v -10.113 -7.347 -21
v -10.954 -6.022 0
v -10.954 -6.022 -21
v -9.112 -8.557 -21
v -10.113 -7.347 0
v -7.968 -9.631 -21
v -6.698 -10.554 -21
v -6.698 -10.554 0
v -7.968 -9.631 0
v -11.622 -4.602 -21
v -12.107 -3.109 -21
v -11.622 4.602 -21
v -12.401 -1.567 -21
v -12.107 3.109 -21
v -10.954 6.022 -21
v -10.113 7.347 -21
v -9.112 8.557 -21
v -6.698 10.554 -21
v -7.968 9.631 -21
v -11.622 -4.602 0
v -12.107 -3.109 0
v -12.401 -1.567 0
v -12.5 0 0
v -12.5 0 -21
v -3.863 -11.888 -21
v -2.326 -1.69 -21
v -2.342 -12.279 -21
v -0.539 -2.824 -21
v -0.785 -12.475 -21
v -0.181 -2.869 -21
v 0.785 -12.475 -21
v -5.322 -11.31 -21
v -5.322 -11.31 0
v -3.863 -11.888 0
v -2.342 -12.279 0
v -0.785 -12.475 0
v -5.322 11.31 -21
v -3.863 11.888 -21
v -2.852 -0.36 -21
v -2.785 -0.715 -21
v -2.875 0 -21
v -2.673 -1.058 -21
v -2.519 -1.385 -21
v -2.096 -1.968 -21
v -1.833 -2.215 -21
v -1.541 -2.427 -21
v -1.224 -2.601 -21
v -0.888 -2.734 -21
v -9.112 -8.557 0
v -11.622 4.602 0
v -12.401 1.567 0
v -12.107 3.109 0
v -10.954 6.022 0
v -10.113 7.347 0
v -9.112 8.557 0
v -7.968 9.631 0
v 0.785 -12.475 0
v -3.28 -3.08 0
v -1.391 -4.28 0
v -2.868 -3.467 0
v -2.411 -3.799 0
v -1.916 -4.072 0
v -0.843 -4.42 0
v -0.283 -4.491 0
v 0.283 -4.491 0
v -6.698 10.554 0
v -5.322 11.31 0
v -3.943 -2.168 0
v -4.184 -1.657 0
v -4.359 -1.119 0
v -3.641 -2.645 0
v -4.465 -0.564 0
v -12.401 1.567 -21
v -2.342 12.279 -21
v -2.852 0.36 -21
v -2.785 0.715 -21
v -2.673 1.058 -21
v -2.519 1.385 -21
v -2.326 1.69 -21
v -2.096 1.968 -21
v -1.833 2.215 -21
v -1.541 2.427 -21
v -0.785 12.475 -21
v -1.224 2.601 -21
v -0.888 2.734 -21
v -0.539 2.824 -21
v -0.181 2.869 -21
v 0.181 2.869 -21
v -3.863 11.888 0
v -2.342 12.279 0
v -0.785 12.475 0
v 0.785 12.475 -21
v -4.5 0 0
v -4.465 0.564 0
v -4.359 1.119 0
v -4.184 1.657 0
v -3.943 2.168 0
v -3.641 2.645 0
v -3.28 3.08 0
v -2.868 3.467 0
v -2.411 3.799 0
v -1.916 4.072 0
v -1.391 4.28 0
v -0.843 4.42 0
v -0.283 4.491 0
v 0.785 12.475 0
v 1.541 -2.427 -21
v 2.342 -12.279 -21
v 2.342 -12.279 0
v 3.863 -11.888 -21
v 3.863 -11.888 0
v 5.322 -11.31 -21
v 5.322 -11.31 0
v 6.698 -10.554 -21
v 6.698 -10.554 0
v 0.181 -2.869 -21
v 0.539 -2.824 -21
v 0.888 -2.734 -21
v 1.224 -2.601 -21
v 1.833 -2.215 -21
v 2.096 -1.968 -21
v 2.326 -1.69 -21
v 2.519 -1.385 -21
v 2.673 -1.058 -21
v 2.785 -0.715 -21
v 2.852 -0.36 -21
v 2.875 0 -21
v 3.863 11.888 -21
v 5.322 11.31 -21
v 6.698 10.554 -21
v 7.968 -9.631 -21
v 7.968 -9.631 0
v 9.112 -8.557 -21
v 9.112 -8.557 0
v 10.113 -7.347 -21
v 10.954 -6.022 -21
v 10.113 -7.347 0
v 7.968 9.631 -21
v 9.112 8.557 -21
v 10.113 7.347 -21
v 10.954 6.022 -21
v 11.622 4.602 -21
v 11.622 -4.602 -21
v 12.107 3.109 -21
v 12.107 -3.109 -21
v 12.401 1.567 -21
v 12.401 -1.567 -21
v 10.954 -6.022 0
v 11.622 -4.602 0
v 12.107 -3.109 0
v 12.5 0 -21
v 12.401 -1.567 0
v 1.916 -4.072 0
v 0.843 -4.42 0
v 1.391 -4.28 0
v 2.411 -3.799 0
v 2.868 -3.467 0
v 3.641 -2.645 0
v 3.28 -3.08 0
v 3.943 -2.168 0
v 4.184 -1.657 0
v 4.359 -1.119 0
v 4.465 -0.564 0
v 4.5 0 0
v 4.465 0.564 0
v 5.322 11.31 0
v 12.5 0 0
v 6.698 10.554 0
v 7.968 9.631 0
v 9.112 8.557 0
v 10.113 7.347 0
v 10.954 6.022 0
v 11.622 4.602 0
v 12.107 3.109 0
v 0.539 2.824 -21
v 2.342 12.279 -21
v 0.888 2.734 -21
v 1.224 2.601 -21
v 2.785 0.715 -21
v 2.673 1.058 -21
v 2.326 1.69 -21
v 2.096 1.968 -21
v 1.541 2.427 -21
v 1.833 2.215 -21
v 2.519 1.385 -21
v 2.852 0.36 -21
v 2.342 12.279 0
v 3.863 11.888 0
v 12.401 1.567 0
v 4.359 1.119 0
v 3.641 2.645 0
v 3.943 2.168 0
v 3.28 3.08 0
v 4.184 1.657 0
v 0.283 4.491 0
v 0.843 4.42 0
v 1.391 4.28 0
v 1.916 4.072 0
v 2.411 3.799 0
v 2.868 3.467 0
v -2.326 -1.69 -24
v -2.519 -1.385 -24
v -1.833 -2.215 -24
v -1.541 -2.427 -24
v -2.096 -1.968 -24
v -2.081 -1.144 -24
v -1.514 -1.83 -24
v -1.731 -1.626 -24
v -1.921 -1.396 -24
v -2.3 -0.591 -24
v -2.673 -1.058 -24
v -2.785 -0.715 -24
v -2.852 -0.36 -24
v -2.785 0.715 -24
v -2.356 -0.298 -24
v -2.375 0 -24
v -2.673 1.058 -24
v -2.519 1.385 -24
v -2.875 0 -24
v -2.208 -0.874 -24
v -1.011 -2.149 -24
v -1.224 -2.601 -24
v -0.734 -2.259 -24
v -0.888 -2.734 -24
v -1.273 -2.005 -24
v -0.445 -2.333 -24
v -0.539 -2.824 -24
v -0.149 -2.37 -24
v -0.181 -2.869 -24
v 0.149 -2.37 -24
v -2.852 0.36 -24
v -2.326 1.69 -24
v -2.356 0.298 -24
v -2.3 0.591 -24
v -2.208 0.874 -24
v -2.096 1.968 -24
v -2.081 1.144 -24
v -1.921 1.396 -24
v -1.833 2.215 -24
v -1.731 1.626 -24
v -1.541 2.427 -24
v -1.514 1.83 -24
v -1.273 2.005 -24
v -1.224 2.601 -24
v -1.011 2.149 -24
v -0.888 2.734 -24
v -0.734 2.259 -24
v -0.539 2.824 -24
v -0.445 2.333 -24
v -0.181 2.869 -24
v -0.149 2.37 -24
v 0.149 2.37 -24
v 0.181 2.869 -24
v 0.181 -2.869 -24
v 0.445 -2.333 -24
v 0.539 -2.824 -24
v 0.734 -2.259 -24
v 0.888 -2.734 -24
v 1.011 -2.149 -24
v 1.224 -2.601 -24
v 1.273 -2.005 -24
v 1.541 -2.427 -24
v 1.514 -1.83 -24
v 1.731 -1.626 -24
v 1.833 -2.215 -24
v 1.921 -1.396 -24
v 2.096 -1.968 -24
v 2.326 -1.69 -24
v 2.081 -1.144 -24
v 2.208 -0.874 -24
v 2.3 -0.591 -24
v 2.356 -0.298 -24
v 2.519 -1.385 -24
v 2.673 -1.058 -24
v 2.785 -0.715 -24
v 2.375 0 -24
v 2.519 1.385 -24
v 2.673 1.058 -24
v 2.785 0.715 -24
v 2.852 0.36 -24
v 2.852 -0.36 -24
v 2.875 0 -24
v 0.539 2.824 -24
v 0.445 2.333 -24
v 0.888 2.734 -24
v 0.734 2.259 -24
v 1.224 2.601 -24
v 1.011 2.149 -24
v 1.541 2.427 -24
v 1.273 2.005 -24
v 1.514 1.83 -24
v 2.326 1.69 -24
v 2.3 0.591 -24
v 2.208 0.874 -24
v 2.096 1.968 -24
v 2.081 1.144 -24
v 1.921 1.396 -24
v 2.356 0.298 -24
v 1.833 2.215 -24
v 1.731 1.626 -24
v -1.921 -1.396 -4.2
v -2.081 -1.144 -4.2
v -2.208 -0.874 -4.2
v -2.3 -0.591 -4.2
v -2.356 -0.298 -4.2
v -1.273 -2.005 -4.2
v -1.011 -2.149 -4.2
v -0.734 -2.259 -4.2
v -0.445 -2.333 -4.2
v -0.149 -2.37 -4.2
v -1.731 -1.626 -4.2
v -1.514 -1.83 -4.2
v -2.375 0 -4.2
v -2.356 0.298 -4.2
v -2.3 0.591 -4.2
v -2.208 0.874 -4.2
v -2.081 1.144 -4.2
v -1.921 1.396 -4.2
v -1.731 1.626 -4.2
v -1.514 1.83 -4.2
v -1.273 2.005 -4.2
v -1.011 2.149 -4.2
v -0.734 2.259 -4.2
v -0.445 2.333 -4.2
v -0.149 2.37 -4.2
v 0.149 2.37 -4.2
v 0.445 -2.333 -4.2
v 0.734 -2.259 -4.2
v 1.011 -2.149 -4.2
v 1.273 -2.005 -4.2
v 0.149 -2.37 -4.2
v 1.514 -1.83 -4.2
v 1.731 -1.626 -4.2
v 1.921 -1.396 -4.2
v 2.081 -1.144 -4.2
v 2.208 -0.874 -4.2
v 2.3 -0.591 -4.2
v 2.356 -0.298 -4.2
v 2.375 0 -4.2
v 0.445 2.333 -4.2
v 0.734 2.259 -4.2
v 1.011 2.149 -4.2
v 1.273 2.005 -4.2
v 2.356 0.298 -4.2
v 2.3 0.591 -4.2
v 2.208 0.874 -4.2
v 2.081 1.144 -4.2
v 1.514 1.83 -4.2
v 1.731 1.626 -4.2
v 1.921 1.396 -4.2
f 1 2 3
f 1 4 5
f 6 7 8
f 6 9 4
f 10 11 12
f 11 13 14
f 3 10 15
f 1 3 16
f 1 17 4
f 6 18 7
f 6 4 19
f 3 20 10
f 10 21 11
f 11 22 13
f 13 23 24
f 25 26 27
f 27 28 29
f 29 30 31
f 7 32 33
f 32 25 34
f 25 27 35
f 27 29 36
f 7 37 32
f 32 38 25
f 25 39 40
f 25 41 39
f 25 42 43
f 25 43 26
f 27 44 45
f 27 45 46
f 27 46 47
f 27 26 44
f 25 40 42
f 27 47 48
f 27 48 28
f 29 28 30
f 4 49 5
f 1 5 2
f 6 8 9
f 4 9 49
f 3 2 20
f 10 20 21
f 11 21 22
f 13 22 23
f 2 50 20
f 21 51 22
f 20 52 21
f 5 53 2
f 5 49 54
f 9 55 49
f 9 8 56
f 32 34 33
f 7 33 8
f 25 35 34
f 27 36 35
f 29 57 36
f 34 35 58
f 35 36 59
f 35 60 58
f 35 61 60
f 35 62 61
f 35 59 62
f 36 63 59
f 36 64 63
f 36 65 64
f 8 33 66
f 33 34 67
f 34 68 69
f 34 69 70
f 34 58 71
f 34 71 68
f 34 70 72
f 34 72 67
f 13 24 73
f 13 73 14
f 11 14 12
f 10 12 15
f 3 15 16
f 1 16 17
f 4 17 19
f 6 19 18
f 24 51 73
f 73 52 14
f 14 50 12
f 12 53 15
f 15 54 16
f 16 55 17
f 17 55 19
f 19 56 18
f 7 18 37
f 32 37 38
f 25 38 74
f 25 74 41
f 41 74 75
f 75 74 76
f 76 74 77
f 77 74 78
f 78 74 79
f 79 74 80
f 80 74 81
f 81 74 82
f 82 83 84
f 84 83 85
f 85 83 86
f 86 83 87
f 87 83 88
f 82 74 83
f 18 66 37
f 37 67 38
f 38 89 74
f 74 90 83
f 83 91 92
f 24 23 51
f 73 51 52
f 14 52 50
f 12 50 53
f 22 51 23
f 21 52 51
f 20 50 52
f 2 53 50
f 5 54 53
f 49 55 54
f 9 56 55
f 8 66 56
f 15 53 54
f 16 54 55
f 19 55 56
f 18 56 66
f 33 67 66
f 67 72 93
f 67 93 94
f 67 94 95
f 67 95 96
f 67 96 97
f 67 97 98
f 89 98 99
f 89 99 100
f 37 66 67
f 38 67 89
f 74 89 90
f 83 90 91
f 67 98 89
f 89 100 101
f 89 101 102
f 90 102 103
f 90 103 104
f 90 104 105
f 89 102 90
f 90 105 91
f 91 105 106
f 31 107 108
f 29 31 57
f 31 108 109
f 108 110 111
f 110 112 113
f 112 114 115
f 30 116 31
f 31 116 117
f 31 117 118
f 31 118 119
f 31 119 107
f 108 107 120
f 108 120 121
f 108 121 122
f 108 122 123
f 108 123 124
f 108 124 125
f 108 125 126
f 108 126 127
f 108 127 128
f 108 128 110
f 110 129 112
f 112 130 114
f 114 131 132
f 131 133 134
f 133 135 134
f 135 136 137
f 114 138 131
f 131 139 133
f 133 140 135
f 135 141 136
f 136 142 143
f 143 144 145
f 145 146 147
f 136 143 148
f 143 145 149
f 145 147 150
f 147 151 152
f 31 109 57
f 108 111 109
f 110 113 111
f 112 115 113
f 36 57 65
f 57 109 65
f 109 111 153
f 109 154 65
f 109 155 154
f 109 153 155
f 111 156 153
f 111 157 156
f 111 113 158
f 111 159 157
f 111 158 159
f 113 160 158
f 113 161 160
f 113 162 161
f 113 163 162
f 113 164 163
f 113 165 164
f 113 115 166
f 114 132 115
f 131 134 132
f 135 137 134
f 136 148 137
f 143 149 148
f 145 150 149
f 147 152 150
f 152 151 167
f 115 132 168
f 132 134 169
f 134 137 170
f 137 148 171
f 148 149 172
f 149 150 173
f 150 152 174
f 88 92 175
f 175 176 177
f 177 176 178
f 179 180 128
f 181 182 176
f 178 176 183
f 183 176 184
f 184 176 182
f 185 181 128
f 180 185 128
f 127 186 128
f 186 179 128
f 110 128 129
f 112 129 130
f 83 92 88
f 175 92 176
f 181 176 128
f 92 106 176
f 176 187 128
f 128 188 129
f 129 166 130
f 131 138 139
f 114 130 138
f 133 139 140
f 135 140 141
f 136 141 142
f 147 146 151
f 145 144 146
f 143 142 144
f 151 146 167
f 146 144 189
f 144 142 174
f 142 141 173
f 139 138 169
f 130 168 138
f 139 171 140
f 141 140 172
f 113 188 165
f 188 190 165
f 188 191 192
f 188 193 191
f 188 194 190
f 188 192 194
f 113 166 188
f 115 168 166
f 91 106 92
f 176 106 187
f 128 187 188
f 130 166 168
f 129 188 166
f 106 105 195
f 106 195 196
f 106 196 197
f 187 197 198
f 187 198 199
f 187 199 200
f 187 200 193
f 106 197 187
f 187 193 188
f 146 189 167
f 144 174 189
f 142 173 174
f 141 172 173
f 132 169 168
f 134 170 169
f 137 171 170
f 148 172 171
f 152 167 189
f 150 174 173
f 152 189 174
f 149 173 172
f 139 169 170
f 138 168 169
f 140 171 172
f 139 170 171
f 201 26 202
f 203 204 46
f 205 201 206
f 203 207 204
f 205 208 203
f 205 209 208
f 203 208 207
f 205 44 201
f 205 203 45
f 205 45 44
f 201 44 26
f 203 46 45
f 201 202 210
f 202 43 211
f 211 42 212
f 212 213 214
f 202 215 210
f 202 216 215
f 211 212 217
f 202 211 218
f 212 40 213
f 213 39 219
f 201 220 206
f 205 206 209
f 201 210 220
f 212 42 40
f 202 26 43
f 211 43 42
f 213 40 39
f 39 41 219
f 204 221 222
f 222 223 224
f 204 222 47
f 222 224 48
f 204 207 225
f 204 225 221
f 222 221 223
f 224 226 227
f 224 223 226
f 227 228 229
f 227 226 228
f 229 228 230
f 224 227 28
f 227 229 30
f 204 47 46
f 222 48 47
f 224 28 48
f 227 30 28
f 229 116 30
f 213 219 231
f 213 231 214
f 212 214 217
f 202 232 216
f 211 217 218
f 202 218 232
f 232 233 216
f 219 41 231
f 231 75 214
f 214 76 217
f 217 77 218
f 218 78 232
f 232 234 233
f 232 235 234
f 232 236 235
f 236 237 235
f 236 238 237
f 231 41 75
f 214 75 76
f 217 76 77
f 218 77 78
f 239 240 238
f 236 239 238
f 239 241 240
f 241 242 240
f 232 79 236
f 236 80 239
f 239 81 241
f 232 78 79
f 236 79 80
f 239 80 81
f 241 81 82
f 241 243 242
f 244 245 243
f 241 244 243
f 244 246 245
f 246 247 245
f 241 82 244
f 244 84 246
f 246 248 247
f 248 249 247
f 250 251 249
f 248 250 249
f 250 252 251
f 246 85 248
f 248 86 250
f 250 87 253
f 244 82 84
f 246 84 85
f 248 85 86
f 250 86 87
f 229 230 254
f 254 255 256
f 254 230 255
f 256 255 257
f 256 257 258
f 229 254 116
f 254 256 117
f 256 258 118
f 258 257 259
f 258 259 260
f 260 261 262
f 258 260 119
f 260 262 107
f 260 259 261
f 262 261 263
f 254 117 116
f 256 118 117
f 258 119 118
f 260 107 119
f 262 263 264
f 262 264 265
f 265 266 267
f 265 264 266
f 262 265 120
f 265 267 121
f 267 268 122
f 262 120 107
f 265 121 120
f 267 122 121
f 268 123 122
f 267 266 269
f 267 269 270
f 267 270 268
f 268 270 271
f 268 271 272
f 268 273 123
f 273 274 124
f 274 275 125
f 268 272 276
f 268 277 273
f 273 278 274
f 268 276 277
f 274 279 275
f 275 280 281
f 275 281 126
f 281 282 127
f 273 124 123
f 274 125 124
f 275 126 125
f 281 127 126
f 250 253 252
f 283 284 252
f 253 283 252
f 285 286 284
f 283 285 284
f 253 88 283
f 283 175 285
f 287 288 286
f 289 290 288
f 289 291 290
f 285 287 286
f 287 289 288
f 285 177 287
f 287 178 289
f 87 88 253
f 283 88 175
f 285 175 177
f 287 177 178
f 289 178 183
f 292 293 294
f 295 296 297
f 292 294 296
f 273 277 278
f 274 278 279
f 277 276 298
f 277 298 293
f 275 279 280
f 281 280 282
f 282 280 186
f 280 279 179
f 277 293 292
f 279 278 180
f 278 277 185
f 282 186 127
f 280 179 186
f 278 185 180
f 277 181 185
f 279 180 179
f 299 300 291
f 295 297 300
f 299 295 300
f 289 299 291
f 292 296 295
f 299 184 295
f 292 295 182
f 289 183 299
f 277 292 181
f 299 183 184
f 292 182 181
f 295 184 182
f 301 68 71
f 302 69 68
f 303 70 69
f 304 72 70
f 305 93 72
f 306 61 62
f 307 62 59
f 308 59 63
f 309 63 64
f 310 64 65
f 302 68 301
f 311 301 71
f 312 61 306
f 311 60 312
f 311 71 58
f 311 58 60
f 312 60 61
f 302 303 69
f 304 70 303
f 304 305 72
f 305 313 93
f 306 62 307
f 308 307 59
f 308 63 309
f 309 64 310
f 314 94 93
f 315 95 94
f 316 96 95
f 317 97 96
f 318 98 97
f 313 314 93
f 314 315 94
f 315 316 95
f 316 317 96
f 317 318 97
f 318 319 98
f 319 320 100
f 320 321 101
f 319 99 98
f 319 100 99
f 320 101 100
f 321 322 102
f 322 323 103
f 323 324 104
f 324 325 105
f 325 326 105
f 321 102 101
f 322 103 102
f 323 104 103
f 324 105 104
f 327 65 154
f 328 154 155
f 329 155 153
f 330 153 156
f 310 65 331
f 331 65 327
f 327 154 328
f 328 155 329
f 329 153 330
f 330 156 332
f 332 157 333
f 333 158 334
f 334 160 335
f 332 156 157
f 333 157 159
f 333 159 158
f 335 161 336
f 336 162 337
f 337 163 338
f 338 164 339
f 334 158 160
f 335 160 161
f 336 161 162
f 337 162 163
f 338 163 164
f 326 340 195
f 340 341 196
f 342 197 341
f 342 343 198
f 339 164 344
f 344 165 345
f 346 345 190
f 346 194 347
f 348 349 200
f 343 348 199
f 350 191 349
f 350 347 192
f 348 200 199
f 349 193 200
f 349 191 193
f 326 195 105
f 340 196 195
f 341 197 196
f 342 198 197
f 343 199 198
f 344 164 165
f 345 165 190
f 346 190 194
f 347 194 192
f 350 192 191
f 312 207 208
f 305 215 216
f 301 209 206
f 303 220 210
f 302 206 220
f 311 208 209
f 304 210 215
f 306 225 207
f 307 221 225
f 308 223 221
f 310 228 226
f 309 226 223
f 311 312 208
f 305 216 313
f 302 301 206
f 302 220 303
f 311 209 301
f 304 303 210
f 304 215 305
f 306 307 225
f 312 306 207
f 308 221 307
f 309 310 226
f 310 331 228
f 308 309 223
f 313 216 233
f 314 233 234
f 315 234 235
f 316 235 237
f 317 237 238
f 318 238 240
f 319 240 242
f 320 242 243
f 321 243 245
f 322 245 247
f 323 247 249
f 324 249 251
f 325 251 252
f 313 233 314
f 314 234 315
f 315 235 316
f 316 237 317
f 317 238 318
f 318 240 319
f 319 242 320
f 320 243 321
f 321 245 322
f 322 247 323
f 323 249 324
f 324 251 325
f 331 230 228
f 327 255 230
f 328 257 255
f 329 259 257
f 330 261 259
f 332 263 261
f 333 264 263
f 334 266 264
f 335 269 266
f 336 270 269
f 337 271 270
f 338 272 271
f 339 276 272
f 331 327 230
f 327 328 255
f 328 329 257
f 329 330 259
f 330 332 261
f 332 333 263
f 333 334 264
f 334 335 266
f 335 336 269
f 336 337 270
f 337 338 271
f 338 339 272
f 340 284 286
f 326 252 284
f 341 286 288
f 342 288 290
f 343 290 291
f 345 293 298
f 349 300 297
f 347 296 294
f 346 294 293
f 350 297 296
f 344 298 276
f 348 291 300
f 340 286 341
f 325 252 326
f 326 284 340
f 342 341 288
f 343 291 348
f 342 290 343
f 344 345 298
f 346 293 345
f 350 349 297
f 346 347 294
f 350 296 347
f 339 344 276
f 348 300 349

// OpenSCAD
$fn = 50;

difference() {
	union() {
		translate(v = [0, 0, -21.0]) {
			cylinder(h = 21, r = 12.5);
		}
		#translate(v = [0, 0, -24.0]) {
			cylinder(h = 24, r = 2.875);
		}
	}
	union() {
		translate(v = [0, 0, 0]) {
			rotate(a = [0, 0, 0]) {
				difference() {
					union() {
						translate(v = [0, 0, -24.0]) {
							cylinder(h = 24, r = 2.25);
						}
						translate(v = [0, 0, -4.2]) {
							cylinder(h = 4.2, r1 = 2.375, r2 = 4.5);
						}
						translate(v = [0, 0, -24.0]) {
							cylinder(h = 24, r = 2.375);
						}
						translate(v = [0, 0, -24.0]) {
							cylinder(h = 24, r = 2.25);
						}
					}
					union();
				}
			}
		}
	}
}
